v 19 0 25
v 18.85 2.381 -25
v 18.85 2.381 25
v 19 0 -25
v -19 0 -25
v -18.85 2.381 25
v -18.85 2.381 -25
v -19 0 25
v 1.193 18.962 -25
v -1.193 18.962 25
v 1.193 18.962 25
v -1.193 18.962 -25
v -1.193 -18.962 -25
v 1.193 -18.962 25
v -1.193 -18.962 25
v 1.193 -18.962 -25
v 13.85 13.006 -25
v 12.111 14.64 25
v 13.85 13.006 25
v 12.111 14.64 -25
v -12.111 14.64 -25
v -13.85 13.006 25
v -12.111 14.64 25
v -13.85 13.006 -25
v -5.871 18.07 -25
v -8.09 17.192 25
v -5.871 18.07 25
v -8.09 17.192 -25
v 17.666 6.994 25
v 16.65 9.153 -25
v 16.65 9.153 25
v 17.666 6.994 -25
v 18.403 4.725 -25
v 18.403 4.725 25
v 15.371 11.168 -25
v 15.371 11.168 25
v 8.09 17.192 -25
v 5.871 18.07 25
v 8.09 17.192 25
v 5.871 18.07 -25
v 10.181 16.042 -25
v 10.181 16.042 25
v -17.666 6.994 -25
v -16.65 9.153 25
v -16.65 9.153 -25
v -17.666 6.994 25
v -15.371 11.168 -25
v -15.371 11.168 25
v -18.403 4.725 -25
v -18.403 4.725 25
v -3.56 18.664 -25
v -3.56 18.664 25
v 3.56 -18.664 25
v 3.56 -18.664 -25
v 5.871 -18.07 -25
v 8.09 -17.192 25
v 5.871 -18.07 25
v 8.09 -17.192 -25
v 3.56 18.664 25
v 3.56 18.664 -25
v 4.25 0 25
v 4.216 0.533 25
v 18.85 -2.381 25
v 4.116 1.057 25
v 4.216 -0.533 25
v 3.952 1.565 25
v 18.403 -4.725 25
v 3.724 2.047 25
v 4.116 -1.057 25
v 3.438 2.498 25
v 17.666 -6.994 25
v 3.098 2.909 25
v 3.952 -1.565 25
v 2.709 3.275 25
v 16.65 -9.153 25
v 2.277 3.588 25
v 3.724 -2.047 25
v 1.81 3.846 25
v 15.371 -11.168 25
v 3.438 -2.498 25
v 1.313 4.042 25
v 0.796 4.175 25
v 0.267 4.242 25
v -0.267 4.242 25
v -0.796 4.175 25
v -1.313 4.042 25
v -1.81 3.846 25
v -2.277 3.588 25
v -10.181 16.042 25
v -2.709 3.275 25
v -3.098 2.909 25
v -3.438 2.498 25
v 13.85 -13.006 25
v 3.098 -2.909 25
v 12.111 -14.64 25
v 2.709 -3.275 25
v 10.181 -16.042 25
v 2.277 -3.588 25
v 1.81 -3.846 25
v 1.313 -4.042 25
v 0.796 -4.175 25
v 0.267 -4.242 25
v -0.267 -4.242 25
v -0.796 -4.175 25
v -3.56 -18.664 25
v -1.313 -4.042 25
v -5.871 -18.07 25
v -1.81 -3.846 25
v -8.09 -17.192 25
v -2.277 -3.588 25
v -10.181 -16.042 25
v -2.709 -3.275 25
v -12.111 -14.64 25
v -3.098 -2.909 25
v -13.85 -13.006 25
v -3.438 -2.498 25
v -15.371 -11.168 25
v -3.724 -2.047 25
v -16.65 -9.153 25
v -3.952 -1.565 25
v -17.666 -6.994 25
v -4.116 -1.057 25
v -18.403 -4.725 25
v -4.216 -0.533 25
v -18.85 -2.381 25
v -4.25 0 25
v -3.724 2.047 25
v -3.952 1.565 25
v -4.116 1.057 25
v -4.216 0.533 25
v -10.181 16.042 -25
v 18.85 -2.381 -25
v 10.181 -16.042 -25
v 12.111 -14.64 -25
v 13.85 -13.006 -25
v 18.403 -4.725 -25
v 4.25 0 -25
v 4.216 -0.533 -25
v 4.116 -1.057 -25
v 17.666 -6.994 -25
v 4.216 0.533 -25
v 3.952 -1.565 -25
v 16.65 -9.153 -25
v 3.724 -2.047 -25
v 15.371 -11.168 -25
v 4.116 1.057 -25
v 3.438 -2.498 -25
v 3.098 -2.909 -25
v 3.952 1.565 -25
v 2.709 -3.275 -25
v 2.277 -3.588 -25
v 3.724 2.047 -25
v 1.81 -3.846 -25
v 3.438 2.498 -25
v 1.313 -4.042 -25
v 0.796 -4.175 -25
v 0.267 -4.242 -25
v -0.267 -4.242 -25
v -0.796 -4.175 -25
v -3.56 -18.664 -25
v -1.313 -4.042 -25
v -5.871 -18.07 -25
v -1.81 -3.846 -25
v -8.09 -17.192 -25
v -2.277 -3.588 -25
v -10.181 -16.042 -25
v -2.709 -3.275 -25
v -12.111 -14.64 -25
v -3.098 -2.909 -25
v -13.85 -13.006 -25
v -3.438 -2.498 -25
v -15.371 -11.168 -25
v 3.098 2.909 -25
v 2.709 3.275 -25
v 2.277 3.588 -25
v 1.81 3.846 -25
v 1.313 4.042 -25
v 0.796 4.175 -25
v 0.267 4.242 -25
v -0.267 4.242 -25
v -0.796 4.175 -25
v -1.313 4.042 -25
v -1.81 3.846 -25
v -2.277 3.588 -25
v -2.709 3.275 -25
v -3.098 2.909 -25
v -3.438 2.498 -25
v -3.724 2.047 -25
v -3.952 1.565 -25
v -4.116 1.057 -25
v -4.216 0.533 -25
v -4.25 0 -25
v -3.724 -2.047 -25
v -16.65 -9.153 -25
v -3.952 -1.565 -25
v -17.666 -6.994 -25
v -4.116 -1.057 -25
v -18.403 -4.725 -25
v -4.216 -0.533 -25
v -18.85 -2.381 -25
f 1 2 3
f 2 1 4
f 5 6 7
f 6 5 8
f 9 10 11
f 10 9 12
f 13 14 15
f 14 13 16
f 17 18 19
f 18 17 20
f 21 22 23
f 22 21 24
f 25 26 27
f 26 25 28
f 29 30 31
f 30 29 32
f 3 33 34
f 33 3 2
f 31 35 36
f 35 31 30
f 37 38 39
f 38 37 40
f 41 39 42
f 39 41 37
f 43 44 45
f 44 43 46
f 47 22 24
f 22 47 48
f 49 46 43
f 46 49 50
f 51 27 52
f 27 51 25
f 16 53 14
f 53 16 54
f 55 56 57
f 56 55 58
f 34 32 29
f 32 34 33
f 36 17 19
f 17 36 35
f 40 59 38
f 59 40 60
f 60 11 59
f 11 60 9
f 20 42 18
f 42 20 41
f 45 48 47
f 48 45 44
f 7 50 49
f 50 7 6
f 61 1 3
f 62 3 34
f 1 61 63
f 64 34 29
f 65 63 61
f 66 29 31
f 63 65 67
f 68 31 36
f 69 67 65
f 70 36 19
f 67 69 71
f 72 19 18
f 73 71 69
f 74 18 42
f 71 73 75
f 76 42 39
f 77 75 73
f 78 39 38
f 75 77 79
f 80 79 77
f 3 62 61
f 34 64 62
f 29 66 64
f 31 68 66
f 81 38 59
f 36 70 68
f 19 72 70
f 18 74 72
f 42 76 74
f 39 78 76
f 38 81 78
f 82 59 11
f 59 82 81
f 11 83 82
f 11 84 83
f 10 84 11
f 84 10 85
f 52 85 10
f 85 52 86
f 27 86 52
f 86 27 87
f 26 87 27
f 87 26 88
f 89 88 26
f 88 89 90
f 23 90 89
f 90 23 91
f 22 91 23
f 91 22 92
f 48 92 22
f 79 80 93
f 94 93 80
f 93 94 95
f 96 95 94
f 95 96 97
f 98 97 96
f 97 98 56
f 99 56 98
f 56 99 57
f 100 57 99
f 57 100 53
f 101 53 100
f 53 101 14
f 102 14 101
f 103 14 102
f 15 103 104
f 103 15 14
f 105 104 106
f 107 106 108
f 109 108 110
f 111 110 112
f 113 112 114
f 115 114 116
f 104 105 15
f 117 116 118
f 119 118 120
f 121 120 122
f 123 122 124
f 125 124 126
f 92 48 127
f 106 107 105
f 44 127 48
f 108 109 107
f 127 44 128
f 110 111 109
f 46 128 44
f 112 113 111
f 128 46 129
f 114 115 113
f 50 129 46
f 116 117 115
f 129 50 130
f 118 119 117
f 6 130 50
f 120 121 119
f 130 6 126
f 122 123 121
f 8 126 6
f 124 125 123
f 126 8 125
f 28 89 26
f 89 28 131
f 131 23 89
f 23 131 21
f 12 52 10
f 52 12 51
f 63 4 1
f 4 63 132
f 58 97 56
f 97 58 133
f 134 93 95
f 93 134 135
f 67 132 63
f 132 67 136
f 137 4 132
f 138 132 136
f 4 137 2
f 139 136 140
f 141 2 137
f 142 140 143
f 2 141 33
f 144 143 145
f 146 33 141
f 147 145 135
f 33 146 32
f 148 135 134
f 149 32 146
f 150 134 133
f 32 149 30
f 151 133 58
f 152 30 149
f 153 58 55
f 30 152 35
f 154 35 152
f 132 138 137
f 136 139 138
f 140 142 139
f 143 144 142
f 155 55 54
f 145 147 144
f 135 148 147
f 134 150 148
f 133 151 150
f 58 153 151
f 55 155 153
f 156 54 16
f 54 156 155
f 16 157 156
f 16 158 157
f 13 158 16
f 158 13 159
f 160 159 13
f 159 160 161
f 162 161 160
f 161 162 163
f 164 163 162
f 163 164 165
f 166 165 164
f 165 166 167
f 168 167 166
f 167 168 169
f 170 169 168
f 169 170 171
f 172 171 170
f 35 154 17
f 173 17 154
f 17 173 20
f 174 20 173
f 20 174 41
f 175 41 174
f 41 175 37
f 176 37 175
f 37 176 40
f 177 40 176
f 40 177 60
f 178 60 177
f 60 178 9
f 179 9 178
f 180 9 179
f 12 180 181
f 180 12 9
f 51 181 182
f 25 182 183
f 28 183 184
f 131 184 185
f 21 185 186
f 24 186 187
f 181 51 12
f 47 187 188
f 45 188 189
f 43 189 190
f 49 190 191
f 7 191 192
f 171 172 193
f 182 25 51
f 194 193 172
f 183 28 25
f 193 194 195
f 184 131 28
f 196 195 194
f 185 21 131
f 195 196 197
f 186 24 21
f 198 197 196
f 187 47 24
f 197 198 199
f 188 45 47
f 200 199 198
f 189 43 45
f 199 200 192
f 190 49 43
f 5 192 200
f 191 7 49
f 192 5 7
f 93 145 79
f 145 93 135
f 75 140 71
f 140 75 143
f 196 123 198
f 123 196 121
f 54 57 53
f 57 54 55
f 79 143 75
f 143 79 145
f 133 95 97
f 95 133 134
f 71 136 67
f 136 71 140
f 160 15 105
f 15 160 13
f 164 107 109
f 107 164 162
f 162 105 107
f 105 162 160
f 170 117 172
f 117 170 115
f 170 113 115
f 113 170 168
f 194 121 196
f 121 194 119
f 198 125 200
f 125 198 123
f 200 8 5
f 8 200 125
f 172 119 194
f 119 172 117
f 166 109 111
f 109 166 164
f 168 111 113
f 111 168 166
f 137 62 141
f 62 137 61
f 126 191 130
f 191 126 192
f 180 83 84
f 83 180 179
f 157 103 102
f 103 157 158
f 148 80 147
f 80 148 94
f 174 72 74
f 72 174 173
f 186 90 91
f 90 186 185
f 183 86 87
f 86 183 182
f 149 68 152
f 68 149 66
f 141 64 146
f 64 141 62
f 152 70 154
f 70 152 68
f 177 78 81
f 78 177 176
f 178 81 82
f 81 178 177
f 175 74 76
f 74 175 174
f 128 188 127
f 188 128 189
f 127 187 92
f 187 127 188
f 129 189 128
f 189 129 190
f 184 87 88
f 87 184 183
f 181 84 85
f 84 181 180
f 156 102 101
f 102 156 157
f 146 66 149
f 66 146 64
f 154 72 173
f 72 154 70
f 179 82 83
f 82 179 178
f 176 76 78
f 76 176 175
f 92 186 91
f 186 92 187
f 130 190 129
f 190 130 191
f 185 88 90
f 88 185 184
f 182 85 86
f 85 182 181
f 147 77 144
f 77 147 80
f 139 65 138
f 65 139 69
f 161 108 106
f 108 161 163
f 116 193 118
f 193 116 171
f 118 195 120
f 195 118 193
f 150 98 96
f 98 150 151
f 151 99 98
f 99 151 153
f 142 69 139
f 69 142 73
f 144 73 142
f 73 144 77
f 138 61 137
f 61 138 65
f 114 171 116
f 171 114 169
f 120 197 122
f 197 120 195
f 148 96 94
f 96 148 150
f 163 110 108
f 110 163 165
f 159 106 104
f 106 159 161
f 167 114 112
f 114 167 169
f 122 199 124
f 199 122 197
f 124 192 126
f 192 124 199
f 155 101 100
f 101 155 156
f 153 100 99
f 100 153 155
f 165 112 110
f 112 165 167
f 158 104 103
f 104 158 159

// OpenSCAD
$fn = 50;


difference() {
	union() {
		translate(v = [0, 0, -25.0000000000]) {
			cylinder(h = 50, r = 19.0000000000);
		}
	}
	union() {
		translate(v = [0, 0, -100.0000000000]) {
			cylinder(h = 200, r = 4.2500000000);
		}
	}
}
